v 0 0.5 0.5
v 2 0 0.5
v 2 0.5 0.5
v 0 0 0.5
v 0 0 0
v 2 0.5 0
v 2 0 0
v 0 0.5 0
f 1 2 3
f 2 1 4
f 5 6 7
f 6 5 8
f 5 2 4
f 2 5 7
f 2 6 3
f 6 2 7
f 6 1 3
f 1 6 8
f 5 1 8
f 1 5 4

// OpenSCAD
// Tetromino (straight) for Stacks of Shapes
// by Slashee the Cow
cube([2,0.5,0.5]);
